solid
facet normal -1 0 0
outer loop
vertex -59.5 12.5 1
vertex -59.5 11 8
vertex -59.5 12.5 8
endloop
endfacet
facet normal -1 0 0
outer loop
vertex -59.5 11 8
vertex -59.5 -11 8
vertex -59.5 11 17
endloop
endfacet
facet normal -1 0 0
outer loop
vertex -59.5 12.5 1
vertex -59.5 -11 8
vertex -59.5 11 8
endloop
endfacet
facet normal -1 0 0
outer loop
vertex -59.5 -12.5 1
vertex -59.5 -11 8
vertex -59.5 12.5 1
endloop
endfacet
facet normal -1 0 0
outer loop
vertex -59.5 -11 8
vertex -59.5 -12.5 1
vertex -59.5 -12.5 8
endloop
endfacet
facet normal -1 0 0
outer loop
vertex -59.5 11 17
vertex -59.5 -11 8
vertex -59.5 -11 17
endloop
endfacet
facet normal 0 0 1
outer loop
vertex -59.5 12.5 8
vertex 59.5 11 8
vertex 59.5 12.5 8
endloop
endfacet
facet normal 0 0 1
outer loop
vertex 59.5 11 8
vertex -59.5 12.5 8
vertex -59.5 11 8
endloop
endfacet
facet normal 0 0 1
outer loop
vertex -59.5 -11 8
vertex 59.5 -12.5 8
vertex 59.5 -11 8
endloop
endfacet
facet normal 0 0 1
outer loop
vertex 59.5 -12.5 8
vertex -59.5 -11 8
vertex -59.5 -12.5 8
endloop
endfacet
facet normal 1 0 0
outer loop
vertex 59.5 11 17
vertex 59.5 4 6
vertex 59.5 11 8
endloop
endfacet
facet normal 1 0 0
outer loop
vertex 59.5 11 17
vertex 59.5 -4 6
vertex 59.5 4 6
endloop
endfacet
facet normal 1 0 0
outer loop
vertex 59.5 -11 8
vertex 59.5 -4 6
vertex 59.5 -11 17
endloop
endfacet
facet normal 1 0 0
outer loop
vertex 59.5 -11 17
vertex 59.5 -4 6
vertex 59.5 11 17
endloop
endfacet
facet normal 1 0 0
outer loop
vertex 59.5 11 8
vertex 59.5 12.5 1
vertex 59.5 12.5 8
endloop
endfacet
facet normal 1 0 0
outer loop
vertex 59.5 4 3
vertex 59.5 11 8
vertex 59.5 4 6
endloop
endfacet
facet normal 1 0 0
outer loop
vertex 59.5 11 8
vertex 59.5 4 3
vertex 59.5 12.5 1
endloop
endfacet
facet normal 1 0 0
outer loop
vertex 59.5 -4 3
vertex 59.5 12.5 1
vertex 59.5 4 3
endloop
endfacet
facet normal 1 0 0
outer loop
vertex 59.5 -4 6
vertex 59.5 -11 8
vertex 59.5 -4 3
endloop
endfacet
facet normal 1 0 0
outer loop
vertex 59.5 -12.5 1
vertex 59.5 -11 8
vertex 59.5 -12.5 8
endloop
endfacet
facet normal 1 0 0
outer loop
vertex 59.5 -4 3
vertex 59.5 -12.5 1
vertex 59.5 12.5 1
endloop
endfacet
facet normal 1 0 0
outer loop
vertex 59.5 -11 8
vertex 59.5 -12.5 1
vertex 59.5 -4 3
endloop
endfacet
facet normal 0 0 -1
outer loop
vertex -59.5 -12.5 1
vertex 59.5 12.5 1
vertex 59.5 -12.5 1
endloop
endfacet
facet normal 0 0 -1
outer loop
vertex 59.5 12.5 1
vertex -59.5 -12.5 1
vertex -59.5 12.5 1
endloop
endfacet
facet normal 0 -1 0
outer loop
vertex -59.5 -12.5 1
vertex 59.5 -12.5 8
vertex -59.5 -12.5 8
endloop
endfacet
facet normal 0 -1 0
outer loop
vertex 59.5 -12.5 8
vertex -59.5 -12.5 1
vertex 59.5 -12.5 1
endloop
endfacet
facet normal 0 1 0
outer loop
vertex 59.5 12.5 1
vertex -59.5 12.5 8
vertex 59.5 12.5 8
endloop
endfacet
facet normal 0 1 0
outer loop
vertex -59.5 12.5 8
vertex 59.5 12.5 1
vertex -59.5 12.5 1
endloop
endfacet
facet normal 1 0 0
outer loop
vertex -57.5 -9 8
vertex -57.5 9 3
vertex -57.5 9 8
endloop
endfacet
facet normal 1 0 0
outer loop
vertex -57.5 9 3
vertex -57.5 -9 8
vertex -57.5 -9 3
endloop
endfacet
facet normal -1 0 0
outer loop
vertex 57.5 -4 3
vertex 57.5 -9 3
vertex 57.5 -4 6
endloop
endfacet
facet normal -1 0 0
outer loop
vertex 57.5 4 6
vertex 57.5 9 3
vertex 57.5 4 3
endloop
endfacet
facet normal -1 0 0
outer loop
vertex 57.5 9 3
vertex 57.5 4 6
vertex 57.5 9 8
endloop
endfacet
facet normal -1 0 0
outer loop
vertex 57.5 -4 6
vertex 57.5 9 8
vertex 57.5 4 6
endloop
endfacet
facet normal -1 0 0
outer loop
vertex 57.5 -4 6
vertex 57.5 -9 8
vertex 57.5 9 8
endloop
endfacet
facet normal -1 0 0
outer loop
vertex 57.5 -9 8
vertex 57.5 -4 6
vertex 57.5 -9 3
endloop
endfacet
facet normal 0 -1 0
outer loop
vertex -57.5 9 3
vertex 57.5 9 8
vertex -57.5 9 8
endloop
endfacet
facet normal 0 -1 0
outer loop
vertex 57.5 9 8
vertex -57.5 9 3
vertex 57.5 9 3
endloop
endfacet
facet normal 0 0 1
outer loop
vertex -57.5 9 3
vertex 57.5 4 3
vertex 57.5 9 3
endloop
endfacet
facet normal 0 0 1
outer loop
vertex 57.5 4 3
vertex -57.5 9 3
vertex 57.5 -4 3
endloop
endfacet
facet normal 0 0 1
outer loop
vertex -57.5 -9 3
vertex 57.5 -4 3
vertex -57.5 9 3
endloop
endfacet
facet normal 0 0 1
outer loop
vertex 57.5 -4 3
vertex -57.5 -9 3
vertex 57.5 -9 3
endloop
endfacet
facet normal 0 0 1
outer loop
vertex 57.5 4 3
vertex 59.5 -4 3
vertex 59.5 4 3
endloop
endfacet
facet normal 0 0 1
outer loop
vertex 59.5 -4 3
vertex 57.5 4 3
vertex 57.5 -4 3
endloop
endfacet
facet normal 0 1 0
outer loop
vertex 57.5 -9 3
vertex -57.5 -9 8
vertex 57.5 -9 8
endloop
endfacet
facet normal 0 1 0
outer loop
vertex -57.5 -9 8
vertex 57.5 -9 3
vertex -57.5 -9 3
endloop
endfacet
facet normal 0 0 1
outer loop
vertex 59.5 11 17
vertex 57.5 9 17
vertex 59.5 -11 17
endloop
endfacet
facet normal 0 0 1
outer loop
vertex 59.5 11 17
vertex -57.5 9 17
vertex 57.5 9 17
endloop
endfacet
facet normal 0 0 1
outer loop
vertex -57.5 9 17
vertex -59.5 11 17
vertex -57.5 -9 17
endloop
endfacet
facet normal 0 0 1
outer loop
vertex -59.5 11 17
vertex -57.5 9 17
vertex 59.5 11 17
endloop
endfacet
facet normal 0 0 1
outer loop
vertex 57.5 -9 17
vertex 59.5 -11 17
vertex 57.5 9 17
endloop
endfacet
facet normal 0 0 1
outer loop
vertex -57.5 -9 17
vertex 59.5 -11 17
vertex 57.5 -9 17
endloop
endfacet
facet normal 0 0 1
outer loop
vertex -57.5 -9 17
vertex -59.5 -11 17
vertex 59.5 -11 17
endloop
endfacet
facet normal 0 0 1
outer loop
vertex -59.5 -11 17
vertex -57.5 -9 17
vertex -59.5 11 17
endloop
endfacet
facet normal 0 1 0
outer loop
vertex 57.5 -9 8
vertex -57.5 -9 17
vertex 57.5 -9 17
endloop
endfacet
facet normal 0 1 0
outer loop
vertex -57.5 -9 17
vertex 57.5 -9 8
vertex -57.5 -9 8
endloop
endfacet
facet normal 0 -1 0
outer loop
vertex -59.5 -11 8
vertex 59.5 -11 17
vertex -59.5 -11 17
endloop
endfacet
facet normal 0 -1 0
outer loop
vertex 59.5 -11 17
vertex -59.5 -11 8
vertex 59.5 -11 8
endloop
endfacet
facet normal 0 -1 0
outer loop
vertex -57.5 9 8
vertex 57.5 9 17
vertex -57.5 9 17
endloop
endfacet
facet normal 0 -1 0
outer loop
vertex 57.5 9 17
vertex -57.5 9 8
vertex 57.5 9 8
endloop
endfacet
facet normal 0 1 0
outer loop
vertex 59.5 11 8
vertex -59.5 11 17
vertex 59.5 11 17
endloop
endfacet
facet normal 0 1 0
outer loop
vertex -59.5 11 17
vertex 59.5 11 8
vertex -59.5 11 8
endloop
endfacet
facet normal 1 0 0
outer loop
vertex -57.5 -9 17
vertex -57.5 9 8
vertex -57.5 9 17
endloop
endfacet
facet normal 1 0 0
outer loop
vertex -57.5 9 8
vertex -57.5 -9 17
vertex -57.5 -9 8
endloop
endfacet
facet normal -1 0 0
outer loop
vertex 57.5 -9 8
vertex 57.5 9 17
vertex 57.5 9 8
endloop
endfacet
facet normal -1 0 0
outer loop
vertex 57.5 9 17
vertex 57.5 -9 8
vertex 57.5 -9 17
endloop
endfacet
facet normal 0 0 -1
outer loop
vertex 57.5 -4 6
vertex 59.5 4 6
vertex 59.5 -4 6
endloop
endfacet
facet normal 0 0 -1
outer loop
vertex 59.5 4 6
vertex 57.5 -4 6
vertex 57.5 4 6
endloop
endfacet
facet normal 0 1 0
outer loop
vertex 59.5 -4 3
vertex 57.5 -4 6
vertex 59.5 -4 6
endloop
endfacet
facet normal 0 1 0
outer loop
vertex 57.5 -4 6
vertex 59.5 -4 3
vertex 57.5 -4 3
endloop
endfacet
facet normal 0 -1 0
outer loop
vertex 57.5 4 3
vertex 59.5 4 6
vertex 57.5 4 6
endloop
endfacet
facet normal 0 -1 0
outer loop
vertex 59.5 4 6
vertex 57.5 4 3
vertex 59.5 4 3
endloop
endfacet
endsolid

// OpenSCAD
$fn = 50;

thickness = 2;
width = 22;
height = 9;
length = 119;
walls = 1.5;
bottom = 7;
cableholeWidth = 8;
cableholeHeight = 3;

translate([-(length/2),-12.5,bottom+1]) {
    difference(){
        union(){
            difference(){ 
                translate([0, 0, -bottom]) {
                    cube([length,width + walls*2,bottom]);
                }
                
                translate([thickness, thickness+walls, -bottom+thickness]) {
                    cube([length-thickness*2,width-thickness*2,bottom]);
                }
            }
            translate([0,walls,0]){
                translate([0,0,0]){
                  cube([length, thickness, height]);
                }
                
                translate([0,width-thickness]){
                    cube([length, thickness, height]);
                }
                
                translate([0,thickness]){
                    cube([thickness, width-2*thickness, height]);
                }
                
                translate([length-thickness,thickness]){
                    cube([thickness, width-2*thickness, height]);
                }
            }
        }
        translate([0,walls,0]){
            translate([100,width/2-cableholeWidth/2,-bottom+thickness]) {
                cube([20,cableholeWidth,cableholeHeight]);           
            }
        }
    }
}
